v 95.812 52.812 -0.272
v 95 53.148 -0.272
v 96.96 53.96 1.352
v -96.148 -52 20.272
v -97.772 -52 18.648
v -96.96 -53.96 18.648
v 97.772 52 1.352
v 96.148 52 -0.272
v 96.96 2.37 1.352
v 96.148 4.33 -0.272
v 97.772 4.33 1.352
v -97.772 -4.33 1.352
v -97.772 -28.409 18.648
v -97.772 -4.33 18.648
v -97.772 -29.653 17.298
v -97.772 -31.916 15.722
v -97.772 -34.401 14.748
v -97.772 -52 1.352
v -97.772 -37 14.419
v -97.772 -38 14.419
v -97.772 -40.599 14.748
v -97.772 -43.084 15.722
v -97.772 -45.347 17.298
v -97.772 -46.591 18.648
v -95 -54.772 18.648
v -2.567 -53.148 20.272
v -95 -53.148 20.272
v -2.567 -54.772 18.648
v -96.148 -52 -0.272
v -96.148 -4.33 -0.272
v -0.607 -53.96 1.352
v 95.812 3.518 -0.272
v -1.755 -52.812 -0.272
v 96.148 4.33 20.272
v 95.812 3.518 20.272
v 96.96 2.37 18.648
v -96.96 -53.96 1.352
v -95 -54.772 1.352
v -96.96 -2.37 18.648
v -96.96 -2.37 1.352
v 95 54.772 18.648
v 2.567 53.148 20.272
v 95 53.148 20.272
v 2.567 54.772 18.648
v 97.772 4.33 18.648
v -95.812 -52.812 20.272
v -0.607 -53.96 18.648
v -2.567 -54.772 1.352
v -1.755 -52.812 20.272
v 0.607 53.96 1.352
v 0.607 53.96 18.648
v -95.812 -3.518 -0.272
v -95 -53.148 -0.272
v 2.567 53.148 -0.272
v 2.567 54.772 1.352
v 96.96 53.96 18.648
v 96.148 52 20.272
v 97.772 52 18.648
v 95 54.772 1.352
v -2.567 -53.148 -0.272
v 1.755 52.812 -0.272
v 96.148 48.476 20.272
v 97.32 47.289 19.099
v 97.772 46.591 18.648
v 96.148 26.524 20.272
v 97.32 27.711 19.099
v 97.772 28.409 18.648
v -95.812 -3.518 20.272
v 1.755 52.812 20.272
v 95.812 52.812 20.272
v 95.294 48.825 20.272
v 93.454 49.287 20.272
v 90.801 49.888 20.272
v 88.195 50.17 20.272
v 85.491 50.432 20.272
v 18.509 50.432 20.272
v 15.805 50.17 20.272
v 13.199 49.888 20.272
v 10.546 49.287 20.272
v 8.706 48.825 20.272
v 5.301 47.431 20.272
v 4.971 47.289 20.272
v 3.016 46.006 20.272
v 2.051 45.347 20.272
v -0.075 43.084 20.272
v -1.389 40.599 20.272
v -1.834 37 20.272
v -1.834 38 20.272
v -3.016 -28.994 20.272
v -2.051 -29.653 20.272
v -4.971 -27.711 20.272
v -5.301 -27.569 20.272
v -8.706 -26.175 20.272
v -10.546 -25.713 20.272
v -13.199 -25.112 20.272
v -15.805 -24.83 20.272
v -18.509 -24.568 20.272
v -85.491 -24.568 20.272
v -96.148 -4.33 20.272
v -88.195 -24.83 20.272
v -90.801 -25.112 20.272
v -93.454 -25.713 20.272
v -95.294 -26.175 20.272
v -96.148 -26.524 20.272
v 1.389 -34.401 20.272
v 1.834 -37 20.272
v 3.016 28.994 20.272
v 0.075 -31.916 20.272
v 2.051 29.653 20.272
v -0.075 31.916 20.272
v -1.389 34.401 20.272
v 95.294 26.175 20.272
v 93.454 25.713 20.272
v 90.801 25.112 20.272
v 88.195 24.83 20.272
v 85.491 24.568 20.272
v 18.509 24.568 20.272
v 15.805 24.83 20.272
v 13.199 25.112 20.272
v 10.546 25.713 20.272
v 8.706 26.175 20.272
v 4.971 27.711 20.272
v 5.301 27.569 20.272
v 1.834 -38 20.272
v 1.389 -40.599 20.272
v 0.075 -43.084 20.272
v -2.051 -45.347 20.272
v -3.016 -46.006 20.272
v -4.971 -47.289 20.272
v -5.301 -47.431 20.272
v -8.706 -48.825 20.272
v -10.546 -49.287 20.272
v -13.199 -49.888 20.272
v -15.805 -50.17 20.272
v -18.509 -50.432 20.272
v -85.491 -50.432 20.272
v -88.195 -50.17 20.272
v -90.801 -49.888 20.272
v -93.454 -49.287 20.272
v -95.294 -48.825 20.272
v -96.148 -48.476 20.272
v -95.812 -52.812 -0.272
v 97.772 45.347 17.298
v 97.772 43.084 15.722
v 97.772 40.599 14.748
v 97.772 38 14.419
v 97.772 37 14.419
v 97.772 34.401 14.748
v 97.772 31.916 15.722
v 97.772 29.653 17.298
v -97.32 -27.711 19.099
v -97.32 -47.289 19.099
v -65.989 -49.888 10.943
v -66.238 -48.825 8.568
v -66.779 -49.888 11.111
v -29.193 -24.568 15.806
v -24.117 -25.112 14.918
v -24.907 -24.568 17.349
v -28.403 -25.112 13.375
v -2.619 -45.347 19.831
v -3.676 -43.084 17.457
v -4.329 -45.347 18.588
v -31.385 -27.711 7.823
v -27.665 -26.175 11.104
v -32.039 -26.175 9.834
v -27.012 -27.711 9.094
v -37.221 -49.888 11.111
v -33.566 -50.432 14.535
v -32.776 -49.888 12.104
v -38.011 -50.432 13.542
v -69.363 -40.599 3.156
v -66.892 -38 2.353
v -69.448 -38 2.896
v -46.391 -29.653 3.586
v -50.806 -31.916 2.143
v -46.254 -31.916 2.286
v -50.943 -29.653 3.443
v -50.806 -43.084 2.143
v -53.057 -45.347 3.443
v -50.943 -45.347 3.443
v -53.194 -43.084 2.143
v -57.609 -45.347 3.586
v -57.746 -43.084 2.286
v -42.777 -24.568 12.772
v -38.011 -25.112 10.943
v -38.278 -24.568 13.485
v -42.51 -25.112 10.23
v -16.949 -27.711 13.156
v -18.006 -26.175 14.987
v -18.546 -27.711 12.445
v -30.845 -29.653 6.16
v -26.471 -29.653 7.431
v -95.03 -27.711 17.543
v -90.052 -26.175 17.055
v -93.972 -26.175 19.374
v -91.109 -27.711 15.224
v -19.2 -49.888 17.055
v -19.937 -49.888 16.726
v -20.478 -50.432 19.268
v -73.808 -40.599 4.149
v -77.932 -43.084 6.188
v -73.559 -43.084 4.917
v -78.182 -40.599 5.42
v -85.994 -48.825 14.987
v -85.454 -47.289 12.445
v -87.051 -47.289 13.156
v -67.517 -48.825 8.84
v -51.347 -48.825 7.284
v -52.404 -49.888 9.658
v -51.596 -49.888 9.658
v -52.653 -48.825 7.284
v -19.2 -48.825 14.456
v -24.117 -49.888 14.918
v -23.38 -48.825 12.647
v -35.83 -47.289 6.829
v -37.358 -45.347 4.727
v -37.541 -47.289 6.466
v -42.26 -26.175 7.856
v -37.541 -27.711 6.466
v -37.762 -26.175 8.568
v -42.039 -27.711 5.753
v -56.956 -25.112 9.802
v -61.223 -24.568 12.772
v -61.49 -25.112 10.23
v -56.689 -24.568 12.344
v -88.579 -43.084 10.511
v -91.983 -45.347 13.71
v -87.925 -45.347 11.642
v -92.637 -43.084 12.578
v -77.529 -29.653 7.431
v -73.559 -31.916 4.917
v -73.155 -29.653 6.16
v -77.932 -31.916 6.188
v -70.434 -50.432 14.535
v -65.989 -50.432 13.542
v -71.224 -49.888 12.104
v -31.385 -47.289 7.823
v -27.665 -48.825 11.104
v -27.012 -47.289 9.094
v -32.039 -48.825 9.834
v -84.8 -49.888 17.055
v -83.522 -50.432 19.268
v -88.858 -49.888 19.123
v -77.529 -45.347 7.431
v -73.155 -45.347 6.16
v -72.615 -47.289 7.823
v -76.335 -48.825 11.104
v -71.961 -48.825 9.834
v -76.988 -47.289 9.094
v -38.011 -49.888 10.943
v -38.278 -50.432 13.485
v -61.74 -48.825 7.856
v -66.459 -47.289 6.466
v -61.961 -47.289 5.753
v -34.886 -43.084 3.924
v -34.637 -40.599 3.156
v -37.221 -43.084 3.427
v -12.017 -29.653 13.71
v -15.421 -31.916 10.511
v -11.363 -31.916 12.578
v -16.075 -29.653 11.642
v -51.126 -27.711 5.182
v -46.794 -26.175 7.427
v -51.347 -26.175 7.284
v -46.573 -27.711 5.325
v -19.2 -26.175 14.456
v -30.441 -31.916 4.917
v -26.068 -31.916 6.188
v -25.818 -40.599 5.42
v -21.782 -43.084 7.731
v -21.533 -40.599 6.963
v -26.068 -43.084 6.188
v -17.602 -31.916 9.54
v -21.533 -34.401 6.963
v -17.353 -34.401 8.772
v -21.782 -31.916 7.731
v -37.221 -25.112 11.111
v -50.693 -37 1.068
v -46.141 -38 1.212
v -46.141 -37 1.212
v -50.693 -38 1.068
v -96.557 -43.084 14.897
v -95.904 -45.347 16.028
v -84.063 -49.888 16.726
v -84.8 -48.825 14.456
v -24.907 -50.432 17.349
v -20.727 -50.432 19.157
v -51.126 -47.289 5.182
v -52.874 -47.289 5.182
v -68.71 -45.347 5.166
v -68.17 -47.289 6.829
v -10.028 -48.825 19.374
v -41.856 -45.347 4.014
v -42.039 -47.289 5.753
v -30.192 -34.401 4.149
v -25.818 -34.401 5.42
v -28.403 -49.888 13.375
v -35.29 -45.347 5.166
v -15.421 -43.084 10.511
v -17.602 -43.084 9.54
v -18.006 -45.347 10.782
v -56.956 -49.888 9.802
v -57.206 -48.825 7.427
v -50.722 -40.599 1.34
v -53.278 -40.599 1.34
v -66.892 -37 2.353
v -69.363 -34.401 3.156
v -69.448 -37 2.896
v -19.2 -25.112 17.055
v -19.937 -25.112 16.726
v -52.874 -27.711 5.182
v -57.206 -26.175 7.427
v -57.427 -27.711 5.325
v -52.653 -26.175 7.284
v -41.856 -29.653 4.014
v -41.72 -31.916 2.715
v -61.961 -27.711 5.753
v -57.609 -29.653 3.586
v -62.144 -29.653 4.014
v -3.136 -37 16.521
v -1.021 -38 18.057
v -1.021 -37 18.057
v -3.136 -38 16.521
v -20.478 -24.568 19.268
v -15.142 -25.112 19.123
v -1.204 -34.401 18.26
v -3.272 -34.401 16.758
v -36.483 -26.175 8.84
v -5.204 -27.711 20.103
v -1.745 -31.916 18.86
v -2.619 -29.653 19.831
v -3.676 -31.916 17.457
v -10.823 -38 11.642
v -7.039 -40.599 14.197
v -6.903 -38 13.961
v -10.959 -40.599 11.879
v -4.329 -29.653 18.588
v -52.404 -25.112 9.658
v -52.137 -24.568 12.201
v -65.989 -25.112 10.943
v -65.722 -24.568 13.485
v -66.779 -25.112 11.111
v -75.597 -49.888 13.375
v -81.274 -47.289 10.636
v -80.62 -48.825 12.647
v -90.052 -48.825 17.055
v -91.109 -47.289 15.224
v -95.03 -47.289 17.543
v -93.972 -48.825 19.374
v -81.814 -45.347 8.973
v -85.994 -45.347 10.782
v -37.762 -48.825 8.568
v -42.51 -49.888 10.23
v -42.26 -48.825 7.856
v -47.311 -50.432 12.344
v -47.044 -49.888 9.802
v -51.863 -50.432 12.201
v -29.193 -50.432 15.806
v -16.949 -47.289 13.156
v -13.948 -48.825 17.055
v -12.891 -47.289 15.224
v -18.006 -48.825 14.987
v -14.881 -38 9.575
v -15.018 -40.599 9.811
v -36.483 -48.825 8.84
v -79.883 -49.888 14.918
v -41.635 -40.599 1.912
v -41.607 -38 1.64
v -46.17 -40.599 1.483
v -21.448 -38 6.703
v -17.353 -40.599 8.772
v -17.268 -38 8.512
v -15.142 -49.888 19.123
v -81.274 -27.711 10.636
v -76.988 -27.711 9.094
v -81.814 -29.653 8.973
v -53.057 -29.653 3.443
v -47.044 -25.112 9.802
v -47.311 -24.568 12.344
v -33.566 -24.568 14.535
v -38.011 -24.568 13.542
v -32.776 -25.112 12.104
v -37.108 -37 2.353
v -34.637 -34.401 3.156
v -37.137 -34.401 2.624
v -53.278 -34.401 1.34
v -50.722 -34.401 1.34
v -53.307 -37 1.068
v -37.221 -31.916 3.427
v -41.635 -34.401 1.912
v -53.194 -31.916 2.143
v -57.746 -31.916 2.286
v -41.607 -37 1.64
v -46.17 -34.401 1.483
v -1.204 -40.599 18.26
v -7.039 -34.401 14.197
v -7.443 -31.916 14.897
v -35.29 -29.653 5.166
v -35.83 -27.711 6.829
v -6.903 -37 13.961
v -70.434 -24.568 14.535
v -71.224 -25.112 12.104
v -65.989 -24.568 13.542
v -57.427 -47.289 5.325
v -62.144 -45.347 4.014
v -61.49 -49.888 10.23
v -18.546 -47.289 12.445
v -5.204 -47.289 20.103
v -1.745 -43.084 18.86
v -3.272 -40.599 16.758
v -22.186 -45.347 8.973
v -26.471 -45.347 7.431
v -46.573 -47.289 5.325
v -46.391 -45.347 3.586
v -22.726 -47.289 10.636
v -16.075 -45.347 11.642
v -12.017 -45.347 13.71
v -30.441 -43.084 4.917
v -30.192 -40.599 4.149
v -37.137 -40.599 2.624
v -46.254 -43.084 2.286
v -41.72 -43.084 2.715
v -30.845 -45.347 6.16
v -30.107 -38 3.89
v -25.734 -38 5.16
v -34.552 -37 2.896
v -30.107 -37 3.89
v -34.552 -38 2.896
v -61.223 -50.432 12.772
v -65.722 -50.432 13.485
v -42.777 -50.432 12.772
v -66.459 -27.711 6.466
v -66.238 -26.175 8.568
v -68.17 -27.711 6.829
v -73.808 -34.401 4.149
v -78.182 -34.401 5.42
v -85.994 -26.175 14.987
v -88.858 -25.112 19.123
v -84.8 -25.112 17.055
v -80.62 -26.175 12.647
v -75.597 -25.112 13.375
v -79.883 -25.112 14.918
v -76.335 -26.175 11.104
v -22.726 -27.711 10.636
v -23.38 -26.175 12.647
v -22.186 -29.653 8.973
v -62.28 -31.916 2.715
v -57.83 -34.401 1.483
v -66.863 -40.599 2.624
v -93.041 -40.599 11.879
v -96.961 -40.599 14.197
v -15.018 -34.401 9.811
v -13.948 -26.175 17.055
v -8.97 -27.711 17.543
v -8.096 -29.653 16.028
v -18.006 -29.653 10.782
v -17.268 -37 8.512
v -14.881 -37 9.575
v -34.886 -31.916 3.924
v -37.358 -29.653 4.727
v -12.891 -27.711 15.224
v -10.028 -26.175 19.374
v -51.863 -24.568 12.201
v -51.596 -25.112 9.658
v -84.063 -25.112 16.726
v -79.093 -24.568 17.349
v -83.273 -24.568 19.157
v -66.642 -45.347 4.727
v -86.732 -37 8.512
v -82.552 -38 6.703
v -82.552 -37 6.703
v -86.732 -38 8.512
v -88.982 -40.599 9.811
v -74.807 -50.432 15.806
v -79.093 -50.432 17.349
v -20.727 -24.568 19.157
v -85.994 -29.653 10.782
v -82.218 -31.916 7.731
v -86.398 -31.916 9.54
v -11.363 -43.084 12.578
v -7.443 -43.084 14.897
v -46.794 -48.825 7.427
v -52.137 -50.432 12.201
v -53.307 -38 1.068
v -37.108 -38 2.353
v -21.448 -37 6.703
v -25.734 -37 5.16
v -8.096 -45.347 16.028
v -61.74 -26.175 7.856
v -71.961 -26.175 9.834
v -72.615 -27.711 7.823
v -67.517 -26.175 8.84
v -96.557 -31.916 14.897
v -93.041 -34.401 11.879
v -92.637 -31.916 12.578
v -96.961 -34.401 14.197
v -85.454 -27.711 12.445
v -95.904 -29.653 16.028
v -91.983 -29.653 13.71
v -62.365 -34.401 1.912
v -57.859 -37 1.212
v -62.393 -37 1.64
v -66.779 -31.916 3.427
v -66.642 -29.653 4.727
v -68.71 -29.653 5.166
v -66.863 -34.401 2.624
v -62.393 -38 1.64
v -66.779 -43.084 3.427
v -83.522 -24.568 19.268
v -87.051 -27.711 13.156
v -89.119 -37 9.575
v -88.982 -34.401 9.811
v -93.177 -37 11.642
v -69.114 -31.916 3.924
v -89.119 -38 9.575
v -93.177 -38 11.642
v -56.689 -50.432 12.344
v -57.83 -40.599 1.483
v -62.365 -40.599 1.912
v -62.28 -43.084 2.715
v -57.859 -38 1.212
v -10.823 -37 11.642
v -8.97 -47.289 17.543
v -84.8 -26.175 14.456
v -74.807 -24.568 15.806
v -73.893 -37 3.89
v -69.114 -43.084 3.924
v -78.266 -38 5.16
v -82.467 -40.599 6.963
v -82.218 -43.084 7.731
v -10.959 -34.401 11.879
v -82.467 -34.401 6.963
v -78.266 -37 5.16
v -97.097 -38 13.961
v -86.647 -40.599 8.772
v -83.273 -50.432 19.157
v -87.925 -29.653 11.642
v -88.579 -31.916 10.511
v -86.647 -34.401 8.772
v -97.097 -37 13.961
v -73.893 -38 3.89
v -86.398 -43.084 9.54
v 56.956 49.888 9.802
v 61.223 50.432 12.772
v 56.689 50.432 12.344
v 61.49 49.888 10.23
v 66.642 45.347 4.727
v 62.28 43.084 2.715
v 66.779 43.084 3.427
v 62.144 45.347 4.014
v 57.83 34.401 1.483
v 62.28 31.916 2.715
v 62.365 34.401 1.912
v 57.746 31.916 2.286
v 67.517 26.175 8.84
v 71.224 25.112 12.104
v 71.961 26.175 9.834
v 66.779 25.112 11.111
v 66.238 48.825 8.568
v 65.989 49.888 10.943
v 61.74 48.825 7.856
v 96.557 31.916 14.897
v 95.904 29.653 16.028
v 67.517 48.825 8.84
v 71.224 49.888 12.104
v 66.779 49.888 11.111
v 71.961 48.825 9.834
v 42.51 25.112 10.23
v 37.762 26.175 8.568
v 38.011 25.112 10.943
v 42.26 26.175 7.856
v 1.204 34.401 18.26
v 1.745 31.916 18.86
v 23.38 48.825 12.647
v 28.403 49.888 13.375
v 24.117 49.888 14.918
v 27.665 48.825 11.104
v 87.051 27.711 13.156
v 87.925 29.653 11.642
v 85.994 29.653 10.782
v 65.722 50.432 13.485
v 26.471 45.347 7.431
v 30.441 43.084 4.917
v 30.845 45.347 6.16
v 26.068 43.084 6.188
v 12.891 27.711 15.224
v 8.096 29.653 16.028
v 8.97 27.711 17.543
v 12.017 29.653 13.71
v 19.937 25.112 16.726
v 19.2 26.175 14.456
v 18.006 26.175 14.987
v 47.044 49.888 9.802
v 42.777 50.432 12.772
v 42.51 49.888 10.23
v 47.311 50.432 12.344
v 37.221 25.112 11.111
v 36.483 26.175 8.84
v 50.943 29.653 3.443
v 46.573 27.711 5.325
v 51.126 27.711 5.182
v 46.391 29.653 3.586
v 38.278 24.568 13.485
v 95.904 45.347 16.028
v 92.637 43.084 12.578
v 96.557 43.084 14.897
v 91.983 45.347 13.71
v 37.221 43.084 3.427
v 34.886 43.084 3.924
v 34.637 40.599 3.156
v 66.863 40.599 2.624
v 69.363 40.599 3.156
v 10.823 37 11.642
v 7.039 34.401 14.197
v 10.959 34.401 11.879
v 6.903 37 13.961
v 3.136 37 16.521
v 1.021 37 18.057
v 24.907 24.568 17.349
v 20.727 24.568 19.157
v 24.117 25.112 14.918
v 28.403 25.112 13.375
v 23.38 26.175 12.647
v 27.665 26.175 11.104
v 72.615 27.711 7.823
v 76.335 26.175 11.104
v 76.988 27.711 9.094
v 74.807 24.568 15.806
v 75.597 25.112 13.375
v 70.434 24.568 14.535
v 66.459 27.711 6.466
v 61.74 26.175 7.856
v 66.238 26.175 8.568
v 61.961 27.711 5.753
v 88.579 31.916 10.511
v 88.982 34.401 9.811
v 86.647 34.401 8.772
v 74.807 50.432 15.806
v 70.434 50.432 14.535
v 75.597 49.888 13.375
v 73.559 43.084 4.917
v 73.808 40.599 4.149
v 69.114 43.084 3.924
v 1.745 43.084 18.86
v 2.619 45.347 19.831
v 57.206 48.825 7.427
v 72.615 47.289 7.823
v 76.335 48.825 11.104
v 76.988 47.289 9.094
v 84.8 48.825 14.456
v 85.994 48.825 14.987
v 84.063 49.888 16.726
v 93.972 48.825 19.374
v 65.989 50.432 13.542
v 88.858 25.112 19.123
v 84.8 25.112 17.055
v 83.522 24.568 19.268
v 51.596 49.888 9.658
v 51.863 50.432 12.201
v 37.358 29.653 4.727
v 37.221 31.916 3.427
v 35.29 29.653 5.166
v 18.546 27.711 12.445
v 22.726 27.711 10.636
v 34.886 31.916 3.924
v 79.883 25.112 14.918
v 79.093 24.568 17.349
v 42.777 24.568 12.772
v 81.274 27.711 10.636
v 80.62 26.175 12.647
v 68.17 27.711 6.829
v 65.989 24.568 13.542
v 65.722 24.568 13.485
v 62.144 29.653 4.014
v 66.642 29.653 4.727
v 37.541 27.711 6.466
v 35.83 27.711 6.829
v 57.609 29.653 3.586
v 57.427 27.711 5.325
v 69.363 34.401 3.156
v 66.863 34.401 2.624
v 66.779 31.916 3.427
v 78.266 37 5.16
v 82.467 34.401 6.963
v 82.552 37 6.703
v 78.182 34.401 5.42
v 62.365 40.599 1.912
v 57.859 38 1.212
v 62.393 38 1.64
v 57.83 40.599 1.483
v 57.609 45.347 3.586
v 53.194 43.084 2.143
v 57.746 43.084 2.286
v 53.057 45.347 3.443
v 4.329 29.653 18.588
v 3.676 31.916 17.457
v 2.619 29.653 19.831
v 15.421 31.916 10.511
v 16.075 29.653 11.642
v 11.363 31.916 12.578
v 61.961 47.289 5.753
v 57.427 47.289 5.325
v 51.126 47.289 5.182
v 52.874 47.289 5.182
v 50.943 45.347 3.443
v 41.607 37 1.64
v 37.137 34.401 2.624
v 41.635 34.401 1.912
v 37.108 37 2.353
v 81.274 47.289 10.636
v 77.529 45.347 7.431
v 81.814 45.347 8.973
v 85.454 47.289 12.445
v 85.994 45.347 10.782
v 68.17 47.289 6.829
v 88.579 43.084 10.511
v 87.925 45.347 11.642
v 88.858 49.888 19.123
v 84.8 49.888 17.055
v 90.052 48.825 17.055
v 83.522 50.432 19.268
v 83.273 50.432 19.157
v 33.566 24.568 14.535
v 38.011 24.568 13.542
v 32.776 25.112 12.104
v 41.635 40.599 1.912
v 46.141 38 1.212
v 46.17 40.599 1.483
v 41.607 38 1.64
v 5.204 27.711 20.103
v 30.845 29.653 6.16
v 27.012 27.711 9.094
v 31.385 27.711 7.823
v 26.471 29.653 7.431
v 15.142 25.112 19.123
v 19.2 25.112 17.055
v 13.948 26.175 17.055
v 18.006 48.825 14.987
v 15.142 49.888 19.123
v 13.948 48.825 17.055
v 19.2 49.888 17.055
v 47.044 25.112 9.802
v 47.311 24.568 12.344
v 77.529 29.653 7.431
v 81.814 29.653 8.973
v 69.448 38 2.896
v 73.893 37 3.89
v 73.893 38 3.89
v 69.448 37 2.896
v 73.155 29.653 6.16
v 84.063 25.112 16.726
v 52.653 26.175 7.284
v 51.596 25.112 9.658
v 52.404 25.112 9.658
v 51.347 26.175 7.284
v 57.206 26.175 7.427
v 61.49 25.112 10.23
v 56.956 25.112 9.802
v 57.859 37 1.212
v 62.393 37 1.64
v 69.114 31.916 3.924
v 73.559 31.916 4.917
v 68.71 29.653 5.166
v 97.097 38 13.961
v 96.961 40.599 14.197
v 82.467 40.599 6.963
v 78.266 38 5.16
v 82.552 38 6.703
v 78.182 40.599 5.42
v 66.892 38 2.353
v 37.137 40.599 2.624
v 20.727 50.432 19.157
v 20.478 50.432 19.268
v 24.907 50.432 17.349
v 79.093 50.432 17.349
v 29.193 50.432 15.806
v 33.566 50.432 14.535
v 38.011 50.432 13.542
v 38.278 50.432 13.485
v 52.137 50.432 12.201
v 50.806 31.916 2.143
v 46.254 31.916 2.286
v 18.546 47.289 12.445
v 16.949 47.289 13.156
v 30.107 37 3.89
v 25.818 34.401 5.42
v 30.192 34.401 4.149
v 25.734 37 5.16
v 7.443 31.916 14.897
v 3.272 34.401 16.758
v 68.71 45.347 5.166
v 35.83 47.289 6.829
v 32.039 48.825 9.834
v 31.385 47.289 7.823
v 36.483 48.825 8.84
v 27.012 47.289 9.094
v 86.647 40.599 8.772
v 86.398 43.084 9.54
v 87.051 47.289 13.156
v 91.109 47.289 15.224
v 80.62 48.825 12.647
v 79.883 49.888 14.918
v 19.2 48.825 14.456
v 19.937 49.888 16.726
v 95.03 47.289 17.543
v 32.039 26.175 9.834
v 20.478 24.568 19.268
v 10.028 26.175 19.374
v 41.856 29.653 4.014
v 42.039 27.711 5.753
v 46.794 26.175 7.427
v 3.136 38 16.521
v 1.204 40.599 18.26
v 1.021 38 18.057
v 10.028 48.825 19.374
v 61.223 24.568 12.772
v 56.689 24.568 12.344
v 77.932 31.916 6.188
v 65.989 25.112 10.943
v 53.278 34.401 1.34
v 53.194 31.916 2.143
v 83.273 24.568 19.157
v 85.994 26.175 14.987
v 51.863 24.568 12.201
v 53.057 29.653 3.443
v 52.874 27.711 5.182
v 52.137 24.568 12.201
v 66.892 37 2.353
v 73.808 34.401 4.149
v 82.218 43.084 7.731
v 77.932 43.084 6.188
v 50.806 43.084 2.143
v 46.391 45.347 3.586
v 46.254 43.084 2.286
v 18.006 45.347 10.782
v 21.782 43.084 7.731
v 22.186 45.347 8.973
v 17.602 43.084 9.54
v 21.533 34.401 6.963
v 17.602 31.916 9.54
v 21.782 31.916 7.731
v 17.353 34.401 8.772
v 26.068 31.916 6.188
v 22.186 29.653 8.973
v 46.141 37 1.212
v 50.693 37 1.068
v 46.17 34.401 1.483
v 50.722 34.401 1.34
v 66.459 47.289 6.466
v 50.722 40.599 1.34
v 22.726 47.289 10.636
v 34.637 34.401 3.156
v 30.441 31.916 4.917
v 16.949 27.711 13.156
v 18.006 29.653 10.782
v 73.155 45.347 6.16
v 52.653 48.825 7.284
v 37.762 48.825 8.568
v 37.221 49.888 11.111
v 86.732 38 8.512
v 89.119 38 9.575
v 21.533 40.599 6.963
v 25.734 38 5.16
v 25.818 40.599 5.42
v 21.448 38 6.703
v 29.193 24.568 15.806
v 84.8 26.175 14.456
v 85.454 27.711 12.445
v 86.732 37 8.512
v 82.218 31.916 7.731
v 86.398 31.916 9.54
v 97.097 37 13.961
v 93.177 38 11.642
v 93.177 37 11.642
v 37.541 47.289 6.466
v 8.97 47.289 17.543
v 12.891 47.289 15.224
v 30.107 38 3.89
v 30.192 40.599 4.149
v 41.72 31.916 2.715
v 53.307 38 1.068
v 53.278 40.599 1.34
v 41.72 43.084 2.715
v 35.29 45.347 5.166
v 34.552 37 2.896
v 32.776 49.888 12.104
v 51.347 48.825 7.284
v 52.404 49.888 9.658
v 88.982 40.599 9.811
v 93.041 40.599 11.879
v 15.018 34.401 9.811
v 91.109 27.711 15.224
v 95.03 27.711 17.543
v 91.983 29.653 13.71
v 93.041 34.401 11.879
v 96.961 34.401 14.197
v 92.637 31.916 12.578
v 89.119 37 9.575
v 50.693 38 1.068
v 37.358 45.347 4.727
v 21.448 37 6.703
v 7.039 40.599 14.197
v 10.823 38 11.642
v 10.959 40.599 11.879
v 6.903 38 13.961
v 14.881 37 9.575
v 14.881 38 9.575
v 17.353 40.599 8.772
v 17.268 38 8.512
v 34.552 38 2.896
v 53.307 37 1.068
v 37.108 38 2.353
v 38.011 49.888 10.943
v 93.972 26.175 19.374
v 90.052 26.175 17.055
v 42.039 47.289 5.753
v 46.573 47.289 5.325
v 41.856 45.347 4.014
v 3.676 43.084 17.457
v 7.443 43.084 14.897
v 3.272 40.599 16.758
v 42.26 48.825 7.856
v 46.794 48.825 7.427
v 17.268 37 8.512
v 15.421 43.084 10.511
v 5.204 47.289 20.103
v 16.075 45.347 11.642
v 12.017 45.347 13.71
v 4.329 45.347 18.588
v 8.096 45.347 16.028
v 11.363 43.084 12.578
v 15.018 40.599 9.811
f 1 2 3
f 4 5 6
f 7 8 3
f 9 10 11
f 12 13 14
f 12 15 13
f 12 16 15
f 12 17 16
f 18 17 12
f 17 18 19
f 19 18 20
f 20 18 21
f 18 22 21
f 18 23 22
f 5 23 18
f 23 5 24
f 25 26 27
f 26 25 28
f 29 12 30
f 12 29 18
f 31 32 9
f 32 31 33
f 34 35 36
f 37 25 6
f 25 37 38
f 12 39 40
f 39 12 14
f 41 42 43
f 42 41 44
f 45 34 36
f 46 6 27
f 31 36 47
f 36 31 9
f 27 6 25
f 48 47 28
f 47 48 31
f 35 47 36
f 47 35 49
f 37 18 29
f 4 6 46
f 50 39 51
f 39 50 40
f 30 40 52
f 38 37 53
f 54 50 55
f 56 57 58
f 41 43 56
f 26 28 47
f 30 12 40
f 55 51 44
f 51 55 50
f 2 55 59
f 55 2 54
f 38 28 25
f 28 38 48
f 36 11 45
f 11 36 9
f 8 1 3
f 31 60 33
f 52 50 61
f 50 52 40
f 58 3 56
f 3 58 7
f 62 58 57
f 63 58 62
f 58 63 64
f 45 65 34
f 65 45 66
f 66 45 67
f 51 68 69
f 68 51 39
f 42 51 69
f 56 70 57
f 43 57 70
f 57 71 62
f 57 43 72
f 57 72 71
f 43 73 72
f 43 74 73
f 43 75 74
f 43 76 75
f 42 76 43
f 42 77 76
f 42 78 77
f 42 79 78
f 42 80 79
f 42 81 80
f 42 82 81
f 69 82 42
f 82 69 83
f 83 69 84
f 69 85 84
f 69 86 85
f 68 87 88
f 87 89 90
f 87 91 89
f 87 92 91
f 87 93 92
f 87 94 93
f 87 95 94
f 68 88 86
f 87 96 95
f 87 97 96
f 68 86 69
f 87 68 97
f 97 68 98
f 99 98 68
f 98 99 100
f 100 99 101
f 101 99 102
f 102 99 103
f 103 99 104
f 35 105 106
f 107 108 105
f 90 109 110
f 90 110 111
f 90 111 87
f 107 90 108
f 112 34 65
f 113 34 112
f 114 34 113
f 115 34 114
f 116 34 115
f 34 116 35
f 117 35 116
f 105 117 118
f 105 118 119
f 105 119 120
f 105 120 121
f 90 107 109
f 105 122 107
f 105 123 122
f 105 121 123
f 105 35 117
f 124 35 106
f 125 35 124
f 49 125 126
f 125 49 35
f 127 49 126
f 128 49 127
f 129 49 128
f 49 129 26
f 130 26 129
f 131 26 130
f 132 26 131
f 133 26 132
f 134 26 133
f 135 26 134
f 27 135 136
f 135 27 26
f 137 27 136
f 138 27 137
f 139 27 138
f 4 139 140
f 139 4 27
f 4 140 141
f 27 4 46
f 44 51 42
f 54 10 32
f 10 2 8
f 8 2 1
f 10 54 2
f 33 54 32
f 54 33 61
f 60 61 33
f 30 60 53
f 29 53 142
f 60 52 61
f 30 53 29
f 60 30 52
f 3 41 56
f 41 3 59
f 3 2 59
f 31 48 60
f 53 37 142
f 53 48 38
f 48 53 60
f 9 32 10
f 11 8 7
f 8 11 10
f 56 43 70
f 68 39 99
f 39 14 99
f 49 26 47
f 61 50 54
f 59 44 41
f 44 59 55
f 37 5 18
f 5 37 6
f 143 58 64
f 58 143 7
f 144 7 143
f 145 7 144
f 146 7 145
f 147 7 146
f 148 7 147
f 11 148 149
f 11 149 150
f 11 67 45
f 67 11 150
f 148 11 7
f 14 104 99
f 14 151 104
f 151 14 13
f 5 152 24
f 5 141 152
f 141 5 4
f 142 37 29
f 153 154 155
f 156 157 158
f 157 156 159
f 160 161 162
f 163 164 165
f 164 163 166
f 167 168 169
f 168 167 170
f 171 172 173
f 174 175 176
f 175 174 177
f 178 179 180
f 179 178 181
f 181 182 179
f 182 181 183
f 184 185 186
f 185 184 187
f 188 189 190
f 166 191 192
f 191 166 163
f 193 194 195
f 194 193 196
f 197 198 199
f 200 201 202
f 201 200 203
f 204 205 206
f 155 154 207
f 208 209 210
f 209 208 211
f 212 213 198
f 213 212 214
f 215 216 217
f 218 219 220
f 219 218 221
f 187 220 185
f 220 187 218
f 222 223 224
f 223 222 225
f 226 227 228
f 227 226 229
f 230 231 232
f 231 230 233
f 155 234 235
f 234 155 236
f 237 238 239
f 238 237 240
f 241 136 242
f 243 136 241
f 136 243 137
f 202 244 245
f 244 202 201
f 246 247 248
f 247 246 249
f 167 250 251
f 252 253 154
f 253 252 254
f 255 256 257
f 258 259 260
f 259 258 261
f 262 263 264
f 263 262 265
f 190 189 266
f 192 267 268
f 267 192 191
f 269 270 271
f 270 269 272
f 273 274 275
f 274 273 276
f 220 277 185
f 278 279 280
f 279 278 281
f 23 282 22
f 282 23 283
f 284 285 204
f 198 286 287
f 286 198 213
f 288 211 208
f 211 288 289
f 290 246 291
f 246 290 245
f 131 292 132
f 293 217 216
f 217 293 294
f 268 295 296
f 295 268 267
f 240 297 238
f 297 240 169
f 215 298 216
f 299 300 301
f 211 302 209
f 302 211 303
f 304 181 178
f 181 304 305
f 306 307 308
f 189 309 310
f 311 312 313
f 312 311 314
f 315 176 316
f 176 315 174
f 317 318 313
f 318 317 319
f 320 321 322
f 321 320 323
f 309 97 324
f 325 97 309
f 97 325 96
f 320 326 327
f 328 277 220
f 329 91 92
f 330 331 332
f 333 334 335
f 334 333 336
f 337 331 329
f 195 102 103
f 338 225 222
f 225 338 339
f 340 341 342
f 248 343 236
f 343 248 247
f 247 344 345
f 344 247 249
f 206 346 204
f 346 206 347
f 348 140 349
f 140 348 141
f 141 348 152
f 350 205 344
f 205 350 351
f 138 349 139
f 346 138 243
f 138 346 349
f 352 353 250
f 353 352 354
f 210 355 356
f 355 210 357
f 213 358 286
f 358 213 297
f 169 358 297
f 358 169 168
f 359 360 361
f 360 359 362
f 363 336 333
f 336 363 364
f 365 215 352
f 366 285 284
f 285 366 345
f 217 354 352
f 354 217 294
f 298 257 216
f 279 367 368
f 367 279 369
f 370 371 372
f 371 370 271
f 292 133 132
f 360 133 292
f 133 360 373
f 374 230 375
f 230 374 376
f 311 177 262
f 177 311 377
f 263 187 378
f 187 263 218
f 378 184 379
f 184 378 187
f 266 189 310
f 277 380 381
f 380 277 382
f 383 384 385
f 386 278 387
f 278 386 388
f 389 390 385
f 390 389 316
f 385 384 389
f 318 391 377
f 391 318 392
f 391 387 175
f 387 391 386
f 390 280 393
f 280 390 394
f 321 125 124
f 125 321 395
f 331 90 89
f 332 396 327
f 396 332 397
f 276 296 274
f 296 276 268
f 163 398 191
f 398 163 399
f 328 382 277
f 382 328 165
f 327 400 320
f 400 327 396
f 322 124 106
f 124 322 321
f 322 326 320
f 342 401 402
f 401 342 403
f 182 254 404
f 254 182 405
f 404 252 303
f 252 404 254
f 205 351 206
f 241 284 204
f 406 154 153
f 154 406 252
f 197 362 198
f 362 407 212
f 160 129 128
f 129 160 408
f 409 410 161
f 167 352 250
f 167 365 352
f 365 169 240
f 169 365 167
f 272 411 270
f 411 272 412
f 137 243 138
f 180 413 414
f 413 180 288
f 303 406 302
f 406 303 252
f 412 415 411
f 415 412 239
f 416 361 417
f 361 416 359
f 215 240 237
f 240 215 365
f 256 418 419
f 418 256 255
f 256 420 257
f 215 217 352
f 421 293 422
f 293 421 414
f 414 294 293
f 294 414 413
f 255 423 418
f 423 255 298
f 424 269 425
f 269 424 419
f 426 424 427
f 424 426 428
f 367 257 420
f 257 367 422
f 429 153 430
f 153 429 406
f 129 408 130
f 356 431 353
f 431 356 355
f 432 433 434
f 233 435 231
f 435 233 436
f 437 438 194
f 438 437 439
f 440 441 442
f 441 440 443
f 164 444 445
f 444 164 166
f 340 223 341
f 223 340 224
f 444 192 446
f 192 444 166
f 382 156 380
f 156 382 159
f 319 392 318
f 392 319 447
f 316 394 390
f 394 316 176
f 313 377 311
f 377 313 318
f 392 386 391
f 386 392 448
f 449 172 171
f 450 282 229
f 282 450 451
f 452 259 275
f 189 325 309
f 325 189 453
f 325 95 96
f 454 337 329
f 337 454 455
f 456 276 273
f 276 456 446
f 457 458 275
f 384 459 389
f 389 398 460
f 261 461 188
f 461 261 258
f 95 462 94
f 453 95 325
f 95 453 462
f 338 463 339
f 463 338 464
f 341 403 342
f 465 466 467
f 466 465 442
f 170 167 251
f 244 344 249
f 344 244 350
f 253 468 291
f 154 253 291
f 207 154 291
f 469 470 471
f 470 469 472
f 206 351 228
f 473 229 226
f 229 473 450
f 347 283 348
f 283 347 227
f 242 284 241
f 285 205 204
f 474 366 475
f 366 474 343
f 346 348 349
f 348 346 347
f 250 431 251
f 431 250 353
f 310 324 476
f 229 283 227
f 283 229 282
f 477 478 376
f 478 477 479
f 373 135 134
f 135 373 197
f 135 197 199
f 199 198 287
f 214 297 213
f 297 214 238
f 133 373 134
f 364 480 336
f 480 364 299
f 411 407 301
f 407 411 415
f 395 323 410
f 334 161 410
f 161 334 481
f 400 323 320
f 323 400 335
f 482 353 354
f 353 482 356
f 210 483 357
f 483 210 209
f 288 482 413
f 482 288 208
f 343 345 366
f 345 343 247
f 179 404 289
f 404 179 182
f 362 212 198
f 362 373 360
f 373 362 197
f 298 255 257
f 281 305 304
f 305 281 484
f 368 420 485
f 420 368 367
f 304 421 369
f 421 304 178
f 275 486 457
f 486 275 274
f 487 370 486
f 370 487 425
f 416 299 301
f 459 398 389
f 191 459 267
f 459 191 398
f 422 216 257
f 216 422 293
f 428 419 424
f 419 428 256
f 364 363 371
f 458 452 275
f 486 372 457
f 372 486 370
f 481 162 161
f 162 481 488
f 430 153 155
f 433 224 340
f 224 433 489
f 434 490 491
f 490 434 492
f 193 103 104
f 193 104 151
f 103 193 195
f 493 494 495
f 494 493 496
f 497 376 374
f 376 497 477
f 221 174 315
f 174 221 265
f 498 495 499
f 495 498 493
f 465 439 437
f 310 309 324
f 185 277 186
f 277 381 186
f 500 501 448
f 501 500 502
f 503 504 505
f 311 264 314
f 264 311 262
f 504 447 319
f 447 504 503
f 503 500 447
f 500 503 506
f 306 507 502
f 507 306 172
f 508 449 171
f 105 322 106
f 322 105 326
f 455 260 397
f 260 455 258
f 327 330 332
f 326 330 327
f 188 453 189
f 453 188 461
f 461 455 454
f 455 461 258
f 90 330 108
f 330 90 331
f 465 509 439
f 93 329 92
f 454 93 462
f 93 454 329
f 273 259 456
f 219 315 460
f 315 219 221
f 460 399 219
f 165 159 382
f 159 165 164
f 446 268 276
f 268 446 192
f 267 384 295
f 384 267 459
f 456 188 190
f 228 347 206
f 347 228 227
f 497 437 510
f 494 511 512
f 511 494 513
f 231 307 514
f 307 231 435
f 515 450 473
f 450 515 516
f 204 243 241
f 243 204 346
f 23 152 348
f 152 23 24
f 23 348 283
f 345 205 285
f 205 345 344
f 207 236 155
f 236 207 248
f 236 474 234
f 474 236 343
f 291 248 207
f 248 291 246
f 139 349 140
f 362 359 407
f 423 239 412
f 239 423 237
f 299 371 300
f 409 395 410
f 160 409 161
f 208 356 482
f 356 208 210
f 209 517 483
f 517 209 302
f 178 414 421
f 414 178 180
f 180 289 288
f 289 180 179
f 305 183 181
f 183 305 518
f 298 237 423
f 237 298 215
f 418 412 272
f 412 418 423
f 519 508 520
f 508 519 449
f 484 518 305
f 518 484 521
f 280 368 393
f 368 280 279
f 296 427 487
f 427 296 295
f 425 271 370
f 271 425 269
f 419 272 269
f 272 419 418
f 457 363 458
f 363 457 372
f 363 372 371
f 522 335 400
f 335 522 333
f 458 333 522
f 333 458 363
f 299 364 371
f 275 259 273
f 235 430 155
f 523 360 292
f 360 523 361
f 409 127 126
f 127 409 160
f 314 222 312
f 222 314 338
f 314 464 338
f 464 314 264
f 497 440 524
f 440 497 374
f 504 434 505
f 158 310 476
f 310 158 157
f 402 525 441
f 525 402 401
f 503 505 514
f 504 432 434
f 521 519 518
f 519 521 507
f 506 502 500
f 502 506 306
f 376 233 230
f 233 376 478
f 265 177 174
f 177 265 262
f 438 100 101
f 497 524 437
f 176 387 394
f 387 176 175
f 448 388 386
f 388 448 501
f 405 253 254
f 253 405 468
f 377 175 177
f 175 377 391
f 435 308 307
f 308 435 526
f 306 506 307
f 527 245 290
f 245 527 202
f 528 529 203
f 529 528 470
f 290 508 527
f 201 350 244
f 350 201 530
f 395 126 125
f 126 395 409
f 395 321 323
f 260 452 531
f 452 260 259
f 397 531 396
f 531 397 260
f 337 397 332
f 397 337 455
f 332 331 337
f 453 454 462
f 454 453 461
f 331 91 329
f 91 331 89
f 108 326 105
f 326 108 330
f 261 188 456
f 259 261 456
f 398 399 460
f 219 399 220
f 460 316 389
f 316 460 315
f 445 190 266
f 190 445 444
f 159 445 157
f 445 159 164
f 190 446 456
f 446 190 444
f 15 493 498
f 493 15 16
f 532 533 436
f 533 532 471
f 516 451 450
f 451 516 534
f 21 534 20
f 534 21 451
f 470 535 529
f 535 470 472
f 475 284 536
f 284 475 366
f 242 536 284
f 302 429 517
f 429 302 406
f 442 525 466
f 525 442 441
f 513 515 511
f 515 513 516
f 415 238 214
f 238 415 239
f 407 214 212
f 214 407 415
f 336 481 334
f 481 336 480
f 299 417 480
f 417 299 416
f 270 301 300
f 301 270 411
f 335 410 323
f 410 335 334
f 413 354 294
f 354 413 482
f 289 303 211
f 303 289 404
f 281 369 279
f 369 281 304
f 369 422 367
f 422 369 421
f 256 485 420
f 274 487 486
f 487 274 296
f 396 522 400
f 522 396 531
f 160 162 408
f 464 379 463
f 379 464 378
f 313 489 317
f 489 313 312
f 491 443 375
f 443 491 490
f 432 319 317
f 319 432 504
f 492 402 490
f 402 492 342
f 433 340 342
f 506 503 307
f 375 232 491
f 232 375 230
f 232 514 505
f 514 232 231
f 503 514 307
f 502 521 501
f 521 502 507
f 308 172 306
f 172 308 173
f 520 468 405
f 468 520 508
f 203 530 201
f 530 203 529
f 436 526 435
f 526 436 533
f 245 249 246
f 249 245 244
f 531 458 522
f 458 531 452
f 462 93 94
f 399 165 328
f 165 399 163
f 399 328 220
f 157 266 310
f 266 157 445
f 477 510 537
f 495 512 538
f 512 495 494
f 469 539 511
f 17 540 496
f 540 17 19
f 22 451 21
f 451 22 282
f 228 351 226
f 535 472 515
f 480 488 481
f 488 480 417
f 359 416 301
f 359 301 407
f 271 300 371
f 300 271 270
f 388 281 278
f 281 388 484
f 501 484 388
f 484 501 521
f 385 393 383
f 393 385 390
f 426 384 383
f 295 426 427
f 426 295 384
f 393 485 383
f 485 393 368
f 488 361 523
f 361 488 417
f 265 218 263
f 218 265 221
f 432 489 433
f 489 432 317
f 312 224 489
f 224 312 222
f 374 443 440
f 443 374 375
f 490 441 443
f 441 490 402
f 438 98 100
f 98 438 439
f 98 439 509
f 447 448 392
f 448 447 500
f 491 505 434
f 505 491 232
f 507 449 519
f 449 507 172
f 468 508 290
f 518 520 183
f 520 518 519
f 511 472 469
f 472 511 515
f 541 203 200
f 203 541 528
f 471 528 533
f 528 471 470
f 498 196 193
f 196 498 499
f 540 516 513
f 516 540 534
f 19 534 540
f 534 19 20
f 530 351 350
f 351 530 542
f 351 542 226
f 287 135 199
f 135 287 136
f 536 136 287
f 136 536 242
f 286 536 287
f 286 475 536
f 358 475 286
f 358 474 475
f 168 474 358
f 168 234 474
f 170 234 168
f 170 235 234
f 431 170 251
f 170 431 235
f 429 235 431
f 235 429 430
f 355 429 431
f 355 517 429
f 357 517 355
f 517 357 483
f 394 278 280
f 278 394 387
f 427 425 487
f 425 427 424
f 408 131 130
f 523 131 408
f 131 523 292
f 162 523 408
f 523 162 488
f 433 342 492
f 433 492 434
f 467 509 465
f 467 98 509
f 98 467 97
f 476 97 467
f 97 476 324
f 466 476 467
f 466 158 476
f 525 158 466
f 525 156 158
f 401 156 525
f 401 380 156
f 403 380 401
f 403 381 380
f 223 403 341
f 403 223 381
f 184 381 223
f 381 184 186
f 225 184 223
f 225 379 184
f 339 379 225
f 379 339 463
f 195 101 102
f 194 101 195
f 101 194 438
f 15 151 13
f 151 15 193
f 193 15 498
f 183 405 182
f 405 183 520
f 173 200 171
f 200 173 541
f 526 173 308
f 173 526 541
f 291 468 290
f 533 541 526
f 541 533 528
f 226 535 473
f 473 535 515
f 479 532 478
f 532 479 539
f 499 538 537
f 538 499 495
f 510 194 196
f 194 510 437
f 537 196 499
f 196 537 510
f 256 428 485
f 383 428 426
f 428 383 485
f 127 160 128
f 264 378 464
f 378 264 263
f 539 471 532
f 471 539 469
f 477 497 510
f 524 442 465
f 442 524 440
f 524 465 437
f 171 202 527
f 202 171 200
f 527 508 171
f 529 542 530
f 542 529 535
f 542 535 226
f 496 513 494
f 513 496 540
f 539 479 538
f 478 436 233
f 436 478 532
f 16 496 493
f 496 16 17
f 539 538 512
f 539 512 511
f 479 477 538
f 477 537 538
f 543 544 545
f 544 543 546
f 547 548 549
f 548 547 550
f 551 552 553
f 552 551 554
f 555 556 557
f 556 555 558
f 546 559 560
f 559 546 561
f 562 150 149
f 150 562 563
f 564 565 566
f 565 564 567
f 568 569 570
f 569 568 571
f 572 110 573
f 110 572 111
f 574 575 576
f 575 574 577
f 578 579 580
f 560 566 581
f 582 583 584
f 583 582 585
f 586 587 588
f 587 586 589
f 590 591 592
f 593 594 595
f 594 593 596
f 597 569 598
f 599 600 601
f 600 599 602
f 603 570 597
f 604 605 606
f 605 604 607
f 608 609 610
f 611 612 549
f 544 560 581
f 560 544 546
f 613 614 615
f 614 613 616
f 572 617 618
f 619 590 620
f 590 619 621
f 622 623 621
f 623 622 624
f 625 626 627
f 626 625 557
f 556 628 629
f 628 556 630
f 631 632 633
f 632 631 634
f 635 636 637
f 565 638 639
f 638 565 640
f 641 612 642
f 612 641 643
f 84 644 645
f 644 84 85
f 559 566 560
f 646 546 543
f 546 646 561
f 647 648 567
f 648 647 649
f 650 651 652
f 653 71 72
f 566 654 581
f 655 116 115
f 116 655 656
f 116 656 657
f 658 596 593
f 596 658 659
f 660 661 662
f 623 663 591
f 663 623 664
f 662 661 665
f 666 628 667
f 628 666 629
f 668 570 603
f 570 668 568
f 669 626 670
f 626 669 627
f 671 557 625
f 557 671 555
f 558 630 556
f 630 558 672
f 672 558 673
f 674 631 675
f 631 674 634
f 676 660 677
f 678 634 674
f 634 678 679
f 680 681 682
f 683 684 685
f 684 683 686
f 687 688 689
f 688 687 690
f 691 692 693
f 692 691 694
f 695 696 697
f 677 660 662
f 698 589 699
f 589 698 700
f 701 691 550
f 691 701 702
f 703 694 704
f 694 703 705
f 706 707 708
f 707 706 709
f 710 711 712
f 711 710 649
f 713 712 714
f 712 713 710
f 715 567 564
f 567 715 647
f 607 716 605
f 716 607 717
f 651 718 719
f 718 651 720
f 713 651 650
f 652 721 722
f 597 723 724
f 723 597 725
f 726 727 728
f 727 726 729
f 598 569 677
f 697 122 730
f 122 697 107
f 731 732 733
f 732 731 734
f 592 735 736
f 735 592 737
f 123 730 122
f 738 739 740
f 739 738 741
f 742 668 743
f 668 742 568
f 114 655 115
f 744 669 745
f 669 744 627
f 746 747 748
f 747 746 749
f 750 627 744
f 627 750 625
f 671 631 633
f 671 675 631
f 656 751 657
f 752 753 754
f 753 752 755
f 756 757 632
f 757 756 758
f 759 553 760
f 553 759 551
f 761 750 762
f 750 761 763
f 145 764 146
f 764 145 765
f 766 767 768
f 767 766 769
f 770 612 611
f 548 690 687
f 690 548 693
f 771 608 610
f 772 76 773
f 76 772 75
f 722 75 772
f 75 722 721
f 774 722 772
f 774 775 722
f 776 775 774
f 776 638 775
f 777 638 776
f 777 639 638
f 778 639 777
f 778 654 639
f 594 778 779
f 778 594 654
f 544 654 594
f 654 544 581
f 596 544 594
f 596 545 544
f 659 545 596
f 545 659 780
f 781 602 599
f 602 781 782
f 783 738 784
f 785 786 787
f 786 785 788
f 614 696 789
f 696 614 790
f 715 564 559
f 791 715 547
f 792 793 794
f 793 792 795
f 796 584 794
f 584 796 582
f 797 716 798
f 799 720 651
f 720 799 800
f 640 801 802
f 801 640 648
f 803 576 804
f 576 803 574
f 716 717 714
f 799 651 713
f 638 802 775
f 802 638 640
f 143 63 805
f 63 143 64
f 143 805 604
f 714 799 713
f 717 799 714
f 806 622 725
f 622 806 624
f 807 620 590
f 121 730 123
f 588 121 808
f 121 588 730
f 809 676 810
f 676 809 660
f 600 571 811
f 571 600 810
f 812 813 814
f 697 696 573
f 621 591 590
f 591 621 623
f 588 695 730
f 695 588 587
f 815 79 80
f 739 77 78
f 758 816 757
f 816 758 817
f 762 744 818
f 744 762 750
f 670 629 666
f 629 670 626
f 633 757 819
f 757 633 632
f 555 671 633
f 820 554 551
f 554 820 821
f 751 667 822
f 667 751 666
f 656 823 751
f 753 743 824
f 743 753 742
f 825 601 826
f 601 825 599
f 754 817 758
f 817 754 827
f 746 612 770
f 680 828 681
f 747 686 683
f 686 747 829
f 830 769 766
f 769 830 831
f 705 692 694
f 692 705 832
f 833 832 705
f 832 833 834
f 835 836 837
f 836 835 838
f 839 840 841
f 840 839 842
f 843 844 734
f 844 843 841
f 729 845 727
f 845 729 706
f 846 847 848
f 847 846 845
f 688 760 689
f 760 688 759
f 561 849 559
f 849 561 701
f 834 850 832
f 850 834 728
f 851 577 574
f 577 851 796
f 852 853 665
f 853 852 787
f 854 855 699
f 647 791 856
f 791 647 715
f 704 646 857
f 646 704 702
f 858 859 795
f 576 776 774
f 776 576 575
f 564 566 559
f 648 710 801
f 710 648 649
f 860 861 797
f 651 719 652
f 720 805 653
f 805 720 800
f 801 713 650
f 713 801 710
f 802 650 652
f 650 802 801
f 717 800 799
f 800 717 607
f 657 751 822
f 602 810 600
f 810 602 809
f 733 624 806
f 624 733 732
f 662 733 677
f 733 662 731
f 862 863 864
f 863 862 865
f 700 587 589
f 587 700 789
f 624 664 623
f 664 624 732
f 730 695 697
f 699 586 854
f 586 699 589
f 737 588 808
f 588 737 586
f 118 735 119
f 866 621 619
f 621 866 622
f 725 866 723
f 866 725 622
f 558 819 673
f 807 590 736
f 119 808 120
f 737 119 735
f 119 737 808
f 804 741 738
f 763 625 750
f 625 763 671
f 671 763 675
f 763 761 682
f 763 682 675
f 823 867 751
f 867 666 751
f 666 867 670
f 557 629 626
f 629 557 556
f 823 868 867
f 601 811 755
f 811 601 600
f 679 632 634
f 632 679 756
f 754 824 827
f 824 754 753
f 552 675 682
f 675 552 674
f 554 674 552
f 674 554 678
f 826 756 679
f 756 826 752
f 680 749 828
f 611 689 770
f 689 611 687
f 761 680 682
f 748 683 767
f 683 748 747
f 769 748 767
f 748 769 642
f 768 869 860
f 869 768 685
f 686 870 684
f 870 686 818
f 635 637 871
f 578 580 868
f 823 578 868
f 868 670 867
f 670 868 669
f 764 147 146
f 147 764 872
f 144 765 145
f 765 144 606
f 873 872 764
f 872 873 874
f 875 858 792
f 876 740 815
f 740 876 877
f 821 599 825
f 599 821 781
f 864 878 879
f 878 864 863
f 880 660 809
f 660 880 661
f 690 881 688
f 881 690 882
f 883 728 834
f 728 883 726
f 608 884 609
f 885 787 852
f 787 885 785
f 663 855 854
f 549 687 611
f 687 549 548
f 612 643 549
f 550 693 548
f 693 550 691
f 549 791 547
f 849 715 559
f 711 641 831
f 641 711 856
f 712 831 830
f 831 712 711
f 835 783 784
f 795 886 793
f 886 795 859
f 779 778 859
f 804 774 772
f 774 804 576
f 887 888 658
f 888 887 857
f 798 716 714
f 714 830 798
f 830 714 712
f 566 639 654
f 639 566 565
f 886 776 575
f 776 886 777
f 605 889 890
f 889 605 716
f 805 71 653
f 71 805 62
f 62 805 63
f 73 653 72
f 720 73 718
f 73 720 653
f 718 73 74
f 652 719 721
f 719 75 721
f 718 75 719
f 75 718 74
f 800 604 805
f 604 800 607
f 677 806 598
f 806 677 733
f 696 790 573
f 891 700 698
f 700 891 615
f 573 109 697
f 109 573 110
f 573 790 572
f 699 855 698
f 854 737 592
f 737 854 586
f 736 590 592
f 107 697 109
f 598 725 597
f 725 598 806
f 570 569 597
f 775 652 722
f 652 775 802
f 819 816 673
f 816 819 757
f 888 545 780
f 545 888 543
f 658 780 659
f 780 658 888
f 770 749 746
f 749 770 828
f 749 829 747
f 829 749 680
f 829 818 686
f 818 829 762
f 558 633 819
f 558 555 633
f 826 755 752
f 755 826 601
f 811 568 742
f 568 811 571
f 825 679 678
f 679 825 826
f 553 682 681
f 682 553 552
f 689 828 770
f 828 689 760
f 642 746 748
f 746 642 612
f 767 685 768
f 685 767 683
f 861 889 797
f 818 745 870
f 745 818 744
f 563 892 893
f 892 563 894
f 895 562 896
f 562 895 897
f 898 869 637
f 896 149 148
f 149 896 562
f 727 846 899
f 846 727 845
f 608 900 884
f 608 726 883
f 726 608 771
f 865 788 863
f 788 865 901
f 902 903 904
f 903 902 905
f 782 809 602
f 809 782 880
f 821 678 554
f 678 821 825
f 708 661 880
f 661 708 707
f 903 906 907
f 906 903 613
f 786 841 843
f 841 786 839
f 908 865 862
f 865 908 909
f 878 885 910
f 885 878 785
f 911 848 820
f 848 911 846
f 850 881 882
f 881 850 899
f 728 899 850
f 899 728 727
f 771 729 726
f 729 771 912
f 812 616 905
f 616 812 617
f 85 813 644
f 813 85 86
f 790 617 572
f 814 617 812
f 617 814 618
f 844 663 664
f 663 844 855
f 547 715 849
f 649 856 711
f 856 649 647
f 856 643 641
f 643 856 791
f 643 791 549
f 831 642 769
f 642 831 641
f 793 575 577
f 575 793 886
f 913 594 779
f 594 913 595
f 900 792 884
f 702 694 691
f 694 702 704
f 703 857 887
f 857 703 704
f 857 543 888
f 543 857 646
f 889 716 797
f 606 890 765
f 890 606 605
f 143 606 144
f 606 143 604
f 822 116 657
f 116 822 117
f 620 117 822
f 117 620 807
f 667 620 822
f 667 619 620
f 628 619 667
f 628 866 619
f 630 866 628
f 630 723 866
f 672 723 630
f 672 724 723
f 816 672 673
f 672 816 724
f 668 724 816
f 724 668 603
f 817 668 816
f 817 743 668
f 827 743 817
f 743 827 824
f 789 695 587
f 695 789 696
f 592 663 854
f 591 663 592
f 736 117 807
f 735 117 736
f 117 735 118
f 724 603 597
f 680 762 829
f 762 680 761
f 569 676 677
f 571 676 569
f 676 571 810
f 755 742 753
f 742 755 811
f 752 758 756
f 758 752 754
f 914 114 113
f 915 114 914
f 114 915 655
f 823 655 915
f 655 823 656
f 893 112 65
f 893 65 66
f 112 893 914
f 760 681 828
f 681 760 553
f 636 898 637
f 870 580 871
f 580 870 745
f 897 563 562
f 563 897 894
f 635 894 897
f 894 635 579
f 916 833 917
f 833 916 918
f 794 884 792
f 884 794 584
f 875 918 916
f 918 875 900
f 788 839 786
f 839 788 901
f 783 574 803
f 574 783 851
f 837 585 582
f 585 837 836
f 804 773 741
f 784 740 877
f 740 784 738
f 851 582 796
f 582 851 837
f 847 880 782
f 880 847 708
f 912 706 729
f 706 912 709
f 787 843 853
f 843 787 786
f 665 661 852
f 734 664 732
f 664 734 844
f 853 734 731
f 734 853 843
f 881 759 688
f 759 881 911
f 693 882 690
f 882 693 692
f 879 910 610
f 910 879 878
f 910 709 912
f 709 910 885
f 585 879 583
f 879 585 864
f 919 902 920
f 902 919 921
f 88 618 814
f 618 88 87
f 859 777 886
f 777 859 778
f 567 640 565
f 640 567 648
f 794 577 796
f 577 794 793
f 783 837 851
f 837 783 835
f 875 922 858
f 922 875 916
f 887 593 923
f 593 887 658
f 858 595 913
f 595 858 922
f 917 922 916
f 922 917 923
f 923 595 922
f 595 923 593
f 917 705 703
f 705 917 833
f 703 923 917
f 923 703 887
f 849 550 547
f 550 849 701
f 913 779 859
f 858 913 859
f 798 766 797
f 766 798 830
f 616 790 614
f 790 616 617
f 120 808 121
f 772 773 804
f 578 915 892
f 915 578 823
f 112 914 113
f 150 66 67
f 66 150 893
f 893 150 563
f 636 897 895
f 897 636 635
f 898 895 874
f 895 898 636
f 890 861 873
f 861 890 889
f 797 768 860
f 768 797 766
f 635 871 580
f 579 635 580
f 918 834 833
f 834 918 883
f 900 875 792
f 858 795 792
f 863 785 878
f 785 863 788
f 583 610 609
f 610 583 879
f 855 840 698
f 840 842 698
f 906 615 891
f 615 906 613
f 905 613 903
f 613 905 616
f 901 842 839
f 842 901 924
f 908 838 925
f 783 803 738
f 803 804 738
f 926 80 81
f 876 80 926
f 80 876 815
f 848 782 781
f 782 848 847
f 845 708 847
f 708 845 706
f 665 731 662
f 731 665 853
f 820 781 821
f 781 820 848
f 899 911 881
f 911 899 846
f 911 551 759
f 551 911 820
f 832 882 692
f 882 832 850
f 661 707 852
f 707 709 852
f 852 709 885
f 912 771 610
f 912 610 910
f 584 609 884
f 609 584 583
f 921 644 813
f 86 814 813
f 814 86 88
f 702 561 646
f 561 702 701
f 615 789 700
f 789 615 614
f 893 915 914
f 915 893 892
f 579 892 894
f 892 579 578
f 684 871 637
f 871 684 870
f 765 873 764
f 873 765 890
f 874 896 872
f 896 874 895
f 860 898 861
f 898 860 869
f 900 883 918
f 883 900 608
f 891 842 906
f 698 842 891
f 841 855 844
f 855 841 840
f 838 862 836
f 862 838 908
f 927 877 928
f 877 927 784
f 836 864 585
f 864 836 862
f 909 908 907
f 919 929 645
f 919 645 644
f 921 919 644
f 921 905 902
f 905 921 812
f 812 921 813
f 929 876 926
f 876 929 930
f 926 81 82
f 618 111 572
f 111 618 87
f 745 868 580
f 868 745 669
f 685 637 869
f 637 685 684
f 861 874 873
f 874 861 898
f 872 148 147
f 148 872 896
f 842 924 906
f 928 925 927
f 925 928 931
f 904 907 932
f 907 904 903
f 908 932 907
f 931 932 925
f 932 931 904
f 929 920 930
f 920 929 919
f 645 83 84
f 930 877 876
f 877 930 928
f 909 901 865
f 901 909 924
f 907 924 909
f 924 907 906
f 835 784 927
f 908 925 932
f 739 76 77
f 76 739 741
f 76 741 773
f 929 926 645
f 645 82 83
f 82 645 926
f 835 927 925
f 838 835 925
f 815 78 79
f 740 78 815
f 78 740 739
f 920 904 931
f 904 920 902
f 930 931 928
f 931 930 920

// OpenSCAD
r_c=145/2;
r_s=25/2;
r_w=r_c+r_s;
r_m=15;

module main_mass() {
    minkowski() {
        intersection() {
            translate([0,0,10]) cube([190, 8*r_s+4, 15], center=true);
            rotate([0,0,30]) translate([0,0,10]) cube([300, 7*r_s, 15], center=true);
        }
        sphere(r=3, $fn=8);
    }
}

module hole() {
    t_y=r_w+1;
    
    translate([0,0,t_y]) rotate([90,0,0]) minkowski() {
        cylinder(r=r_c, h=1, center=true, $fn=100);
        sphere(r=r_s);
    }
}

difference() {
    main_mass();
    translate([-(r_w + r_m)/2 - 2, -3*r_s, 0]) hole();
    translate([(r_w + r_m)/2 + 2, 3*r_s, 0]) hole();
}
